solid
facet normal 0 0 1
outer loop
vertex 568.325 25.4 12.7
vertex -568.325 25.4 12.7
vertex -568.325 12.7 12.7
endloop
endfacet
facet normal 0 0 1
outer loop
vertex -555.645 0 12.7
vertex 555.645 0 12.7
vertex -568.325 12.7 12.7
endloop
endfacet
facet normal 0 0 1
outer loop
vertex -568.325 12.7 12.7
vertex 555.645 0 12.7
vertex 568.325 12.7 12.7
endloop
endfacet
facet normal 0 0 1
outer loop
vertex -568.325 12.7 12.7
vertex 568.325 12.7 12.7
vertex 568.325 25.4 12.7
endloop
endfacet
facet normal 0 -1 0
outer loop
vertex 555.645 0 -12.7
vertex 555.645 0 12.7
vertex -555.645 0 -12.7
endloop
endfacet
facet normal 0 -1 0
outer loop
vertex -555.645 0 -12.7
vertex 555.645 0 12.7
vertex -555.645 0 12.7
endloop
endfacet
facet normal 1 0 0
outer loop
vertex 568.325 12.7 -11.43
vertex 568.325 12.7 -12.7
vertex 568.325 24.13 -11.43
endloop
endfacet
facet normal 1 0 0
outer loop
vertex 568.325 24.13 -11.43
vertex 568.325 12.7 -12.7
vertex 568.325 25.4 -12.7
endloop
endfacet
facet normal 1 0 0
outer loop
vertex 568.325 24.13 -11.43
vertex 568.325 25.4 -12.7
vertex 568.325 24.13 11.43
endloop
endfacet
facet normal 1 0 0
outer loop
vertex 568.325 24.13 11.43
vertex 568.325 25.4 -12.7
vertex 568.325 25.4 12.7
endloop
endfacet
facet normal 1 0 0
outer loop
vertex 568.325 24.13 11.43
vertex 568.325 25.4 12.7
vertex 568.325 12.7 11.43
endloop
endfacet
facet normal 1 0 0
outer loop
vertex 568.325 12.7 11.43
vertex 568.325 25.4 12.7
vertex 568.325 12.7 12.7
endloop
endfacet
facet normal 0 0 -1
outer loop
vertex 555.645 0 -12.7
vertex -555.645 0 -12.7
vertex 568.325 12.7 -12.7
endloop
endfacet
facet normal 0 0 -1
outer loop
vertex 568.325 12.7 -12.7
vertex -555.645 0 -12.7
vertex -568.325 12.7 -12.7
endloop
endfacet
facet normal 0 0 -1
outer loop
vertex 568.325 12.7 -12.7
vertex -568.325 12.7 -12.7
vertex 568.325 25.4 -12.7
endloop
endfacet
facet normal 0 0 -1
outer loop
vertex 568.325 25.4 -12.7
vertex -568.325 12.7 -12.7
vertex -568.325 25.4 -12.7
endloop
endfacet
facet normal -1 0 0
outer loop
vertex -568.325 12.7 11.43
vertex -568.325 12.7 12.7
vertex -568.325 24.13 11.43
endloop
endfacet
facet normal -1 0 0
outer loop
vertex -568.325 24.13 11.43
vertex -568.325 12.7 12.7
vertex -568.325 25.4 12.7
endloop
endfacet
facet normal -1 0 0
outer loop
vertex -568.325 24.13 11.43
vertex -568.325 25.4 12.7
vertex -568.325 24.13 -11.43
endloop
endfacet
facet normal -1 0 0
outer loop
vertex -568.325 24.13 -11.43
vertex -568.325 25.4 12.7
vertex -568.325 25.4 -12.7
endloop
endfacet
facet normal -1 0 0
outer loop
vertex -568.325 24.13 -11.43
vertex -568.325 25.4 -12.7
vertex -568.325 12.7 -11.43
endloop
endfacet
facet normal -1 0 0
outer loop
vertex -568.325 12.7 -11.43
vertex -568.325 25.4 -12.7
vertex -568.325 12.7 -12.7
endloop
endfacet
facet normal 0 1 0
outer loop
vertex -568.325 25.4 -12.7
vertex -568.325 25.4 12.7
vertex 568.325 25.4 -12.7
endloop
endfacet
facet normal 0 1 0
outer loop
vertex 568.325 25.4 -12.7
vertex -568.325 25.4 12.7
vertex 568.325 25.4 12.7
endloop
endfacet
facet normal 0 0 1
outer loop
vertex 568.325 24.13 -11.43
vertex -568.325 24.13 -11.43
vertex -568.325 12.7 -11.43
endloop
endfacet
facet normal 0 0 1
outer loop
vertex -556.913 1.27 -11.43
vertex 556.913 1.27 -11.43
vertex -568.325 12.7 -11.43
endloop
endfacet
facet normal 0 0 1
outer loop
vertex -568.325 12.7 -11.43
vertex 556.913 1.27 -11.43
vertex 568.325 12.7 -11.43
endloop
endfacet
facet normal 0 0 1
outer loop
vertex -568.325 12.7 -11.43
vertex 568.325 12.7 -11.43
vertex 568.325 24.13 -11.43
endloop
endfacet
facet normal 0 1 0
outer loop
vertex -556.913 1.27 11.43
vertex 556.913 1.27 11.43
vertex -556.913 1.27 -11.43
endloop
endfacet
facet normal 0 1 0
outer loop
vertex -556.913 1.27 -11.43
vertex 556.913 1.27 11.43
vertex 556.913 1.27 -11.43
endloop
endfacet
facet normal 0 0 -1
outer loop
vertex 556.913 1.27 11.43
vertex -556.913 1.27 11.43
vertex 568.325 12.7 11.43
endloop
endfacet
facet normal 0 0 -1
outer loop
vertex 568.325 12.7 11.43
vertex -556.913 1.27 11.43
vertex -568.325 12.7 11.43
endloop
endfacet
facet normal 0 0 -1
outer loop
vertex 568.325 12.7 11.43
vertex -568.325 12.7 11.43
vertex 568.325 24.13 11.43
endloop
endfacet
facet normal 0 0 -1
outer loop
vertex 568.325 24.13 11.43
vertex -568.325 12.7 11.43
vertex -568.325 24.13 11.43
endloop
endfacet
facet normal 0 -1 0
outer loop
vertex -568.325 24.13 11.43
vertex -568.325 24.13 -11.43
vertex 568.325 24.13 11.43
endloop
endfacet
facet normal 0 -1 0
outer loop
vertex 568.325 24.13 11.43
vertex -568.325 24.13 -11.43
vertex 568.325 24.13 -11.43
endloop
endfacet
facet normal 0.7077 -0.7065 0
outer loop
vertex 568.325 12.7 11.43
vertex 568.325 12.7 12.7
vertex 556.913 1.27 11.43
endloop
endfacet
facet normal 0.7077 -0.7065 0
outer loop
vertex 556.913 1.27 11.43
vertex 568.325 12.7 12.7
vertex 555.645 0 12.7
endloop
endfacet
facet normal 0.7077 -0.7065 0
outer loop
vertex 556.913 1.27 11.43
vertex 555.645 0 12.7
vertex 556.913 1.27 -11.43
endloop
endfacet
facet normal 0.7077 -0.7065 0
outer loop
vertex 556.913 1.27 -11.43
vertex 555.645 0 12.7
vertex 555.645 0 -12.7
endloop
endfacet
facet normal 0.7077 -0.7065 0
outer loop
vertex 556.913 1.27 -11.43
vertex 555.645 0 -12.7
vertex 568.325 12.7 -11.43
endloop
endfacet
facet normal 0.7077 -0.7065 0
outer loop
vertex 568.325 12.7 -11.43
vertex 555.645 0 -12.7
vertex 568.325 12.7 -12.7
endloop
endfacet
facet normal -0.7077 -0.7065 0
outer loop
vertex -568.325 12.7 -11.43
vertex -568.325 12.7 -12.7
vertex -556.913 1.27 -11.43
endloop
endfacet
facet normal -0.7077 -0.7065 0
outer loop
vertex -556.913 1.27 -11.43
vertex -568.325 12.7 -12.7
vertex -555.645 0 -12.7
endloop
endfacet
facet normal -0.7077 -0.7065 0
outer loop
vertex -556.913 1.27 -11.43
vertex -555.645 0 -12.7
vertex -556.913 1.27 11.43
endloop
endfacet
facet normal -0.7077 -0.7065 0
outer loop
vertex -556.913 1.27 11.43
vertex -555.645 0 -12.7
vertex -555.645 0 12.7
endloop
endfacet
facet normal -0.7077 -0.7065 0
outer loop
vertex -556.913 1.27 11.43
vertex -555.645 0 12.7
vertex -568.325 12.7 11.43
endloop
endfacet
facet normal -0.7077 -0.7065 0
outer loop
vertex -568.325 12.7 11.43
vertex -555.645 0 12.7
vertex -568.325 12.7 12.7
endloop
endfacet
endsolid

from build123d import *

# Parameters (mm, degrees)
BASE_W           = 1136.65
BASE_H           = 25.4
BOSS_FRAME_DEPTH = 25.4
SKETCH2_W        = 22.86
SKETCH2_H        = 22.86
CUT_HOLLOW_DEPTH = 1138.004693262
CUT_ANGLE_DEPTH  = 570.459064047


with BuildPart() as part:
    # Base → Boss-Frame (new body)
    with BuildSketch(Plane(origin=(0, 0, 0), x_dir=(1, 0, 0), z_dir=(0, 1, 0))):
        Rectangle(BASE_W, BASE_H)
    extrude(amount=BOSS_FRAME_DEPTH)

    # Sketch2 → Cut-Hollow (cut, through all)
    with BuildSketch(Plane(origin=(568.325, 0, 0), x_dir=(0, 0, -1), z_dir=(1, 0, 0))):
        with Locations((0, 12.7)):
            Rectangle(SKETCH2_W, SKETCH2_H)
    extrude(amount=-CUT_HOLLOW_DEPTH, mode=Mode.SUBTRACT)

    # Sketch4 → Cut-Angle (cut, through all)
    with BuildSketch(Plane.XY.offset(12.7)):
        Polygon((-568.325, 12.7), (-568.325, 0), (-555.645247213, 0), align=None)
        Polygon((568.325, 0), (555.645247213, 0), (568.325, 12.7), align=None)
    extrude(amount=-CUT_ANGLE_DEPTH, mode=Mode.SUBTRACT)


solid = part.part
